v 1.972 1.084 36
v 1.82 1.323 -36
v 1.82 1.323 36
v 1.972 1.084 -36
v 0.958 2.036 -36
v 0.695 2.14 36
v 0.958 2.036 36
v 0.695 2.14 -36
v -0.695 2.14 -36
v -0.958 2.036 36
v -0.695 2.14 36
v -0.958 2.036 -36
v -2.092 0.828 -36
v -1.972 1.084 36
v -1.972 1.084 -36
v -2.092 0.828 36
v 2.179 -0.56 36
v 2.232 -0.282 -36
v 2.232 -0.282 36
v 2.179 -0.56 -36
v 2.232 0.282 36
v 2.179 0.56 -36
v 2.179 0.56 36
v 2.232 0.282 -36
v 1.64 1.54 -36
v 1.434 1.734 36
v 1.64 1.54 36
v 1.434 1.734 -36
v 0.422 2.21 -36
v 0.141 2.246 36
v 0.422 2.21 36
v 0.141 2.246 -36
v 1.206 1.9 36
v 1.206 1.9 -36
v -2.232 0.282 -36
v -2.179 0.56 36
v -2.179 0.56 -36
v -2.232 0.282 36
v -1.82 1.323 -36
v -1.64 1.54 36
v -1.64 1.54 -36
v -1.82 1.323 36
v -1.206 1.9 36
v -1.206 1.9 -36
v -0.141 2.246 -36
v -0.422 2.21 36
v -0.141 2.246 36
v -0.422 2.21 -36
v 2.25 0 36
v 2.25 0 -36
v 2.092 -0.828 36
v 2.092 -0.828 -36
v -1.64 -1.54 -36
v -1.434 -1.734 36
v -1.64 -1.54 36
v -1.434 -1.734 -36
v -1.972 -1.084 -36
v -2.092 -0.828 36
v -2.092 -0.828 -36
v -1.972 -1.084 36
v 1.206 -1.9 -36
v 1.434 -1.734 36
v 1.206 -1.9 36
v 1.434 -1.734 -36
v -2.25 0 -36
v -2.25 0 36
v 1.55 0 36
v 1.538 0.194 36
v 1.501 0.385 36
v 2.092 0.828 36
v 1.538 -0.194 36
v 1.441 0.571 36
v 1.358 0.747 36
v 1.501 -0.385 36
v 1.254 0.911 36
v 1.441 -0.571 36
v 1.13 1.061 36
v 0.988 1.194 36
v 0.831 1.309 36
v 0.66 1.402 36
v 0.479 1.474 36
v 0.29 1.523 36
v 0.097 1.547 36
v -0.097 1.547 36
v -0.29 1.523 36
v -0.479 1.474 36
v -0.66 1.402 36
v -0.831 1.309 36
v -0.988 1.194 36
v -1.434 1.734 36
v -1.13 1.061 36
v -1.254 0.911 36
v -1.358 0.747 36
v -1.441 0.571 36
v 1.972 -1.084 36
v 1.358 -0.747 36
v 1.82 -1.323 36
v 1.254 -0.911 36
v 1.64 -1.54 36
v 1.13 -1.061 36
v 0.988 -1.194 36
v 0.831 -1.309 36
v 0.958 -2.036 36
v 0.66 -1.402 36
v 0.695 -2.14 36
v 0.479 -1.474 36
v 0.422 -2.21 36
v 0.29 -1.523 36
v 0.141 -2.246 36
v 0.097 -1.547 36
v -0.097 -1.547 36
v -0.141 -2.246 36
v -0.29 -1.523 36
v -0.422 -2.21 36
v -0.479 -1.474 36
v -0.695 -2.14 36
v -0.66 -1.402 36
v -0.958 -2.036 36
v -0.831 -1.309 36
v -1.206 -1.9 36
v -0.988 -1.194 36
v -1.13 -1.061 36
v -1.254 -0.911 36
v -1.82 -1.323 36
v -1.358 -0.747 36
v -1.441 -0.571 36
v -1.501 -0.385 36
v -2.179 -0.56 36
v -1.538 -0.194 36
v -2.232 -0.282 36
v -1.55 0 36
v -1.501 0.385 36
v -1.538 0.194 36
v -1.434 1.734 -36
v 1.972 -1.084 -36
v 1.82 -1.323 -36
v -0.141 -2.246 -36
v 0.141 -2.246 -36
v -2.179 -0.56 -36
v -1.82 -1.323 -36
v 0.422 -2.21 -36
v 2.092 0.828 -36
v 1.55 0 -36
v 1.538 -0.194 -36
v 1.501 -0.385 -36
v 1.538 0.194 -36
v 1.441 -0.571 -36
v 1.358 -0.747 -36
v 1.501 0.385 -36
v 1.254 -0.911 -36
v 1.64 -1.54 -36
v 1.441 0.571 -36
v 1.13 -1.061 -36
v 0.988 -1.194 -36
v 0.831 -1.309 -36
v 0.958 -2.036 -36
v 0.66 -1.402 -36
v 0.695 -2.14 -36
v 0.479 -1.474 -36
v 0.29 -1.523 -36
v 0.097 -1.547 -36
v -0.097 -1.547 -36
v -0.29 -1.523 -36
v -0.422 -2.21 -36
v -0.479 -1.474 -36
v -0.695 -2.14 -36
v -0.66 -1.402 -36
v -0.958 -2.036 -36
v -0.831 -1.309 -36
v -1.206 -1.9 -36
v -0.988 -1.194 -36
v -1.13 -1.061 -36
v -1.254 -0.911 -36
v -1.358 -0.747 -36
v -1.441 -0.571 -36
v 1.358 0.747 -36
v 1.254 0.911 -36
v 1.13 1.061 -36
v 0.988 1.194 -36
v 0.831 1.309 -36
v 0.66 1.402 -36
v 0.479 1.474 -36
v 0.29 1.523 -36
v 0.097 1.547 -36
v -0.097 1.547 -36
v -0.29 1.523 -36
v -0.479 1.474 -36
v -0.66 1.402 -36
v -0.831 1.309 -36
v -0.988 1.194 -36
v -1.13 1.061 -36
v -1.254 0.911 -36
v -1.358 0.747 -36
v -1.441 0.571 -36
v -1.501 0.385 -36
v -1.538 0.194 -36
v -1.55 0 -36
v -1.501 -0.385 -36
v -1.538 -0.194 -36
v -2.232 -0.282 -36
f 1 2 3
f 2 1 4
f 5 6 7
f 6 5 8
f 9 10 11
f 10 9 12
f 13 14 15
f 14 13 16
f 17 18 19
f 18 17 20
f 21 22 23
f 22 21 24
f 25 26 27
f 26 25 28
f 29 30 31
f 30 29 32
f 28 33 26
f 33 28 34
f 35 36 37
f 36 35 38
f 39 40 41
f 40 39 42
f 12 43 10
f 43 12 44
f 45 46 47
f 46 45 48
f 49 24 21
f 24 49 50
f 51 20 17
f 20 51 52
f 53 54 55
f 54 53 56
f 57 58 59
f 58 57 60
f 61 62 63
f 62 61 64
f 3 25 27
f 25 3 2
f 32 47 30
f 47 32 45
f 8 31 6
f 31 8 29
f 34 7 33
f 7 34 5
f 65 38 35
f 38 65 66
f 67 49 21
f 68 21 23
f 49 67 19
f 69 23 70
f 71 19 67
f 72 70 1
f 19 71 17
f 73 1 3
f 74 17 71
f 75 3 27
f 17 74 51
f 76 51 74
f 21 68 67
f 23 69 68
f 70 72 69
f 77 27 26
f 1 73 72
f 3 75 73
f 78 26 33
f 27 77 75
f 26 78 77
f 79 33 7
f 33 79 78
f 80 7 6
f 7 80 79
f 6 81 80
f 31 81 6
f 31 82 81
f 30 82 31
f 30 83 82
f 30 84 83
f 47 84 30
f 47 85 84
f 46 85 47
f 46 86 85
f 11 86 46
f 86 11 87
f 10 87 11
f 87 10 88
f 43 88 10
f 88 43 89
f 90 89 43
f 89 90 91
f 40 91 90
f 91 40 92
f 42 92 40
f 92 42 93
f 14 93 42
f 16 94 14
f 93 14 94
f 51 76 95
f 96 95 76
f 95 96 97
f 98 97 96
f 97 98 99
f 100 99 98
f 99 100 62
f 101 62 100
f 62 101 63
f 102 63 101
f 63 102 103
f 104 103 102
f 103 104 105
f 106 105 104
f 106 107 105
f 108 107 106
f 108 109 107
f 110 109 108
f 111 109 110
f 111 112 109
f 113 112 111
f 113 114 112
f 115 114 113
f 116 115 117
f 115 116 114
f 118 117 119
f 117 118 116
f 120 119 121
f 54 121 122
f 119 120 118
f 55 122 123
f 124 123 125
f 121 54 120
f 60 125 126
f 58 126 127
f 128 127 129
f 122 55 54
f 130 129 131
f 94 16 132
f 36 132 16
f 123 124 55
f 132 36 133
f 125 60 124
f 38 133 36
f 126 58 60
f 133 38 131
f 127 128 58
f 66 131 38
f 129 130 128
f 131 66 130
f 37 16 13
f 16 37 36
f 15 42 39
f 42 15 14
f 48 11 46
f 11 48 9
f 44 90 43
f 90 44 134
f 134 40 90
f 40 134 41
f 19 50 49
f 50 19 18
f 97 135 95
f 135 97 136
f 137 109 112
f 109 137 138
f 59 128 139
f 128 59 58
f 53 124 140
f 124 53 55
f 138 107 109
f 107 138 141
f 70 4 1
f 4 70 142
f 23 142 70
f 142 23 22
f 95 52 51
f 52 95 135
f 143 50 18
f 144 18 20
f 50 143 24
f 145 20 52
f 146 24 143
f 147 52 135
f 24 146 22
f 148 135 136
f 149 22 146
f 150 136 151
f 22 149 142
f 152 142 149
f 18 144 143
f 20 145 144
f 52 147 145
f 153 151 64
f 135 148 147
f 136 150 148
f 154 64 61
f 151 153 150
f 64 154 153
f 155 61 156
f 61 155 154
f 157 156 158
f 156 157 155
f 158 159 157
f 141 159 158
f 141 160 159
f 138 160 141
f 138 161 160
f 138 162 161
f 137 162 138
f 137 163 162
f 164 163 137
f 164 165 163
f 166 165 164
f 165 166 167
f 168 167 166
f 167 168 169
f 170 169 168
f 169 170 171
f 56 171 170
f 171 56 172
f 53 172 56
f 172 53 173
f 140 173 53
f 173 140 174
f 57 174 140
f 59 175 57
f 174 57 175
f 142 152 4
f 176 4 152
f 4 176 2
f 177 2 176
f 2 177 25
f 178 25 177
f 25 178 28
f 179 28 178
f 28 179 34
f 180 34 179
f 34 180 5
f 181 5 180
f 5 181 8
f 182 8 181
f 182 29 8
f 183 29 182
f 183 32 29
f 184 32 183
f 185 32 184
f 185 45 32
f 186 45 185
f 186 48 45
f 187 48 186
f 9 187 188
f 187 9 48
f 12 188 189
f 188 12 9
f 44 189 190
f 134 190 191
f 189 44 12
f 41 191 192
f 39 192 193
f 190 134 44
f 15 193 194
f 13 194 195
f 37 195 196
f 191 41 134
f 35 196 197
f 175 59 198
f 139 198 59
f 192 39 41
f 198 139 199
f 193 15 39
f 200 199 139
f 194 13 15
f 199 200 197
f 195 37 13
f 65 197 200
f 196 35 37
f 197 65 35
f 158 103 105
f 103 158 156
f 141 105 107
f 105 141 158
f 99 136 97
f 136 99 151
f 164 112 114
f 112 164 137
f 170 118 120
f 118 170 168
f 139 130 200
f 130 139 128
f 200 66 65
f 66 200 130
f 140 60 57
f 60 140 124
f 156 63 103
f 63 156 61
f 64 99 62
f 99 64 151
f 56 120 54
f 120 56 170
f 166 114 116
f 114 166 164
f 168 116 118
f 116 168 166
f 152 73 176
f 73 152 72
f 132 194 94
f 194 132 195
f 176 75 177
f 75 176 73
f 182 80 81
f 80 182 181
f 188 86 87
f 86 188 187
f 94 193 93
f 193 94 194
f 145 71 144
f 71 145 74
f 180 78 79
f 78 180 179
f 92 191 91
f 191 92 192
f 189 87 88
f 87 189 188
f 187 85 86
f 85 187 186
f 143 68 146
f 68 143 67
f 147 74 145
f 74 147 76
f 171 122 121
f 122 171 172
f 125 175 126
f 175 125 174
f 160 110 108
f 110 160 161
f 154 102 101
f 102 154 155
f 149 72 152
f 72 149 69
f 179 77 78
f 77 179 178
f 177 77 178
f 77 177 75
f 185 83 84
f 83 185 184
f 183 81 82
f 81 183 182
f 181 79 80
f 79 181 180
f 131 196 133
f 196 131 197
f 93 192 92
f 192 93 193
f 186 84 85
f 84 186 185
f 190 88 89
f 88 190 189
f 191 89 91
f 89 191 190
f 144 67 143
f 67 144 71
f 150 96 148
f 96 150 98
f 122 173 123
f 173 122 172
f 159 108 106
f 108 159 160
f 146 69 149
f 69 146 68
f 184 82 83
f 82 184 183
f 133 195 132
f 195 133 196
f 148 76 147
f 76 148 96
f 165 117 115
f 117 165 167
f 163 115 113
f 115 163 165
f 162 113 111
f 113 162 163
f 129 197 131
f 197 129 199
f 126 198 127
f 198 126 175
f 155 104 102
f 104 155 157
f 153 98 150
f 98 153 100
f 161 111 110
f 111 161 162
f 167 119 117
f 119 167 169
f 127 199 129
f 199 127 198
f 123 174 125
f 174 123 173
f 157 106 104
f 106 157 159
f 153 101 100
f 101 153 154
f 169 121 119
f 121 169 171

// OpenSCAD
$fn = 50;


difference() {
	union() {
		translate(v = [0, 0, -36.0000000000]) {
			cylinder(h = 72, r = 2.2500000000);
		}
	}
	union() {
		translate(v = [0, 0, -100.0000000000]) {
			cylinder(h = 200, r = 1.5500000000);
		}
	}
}
